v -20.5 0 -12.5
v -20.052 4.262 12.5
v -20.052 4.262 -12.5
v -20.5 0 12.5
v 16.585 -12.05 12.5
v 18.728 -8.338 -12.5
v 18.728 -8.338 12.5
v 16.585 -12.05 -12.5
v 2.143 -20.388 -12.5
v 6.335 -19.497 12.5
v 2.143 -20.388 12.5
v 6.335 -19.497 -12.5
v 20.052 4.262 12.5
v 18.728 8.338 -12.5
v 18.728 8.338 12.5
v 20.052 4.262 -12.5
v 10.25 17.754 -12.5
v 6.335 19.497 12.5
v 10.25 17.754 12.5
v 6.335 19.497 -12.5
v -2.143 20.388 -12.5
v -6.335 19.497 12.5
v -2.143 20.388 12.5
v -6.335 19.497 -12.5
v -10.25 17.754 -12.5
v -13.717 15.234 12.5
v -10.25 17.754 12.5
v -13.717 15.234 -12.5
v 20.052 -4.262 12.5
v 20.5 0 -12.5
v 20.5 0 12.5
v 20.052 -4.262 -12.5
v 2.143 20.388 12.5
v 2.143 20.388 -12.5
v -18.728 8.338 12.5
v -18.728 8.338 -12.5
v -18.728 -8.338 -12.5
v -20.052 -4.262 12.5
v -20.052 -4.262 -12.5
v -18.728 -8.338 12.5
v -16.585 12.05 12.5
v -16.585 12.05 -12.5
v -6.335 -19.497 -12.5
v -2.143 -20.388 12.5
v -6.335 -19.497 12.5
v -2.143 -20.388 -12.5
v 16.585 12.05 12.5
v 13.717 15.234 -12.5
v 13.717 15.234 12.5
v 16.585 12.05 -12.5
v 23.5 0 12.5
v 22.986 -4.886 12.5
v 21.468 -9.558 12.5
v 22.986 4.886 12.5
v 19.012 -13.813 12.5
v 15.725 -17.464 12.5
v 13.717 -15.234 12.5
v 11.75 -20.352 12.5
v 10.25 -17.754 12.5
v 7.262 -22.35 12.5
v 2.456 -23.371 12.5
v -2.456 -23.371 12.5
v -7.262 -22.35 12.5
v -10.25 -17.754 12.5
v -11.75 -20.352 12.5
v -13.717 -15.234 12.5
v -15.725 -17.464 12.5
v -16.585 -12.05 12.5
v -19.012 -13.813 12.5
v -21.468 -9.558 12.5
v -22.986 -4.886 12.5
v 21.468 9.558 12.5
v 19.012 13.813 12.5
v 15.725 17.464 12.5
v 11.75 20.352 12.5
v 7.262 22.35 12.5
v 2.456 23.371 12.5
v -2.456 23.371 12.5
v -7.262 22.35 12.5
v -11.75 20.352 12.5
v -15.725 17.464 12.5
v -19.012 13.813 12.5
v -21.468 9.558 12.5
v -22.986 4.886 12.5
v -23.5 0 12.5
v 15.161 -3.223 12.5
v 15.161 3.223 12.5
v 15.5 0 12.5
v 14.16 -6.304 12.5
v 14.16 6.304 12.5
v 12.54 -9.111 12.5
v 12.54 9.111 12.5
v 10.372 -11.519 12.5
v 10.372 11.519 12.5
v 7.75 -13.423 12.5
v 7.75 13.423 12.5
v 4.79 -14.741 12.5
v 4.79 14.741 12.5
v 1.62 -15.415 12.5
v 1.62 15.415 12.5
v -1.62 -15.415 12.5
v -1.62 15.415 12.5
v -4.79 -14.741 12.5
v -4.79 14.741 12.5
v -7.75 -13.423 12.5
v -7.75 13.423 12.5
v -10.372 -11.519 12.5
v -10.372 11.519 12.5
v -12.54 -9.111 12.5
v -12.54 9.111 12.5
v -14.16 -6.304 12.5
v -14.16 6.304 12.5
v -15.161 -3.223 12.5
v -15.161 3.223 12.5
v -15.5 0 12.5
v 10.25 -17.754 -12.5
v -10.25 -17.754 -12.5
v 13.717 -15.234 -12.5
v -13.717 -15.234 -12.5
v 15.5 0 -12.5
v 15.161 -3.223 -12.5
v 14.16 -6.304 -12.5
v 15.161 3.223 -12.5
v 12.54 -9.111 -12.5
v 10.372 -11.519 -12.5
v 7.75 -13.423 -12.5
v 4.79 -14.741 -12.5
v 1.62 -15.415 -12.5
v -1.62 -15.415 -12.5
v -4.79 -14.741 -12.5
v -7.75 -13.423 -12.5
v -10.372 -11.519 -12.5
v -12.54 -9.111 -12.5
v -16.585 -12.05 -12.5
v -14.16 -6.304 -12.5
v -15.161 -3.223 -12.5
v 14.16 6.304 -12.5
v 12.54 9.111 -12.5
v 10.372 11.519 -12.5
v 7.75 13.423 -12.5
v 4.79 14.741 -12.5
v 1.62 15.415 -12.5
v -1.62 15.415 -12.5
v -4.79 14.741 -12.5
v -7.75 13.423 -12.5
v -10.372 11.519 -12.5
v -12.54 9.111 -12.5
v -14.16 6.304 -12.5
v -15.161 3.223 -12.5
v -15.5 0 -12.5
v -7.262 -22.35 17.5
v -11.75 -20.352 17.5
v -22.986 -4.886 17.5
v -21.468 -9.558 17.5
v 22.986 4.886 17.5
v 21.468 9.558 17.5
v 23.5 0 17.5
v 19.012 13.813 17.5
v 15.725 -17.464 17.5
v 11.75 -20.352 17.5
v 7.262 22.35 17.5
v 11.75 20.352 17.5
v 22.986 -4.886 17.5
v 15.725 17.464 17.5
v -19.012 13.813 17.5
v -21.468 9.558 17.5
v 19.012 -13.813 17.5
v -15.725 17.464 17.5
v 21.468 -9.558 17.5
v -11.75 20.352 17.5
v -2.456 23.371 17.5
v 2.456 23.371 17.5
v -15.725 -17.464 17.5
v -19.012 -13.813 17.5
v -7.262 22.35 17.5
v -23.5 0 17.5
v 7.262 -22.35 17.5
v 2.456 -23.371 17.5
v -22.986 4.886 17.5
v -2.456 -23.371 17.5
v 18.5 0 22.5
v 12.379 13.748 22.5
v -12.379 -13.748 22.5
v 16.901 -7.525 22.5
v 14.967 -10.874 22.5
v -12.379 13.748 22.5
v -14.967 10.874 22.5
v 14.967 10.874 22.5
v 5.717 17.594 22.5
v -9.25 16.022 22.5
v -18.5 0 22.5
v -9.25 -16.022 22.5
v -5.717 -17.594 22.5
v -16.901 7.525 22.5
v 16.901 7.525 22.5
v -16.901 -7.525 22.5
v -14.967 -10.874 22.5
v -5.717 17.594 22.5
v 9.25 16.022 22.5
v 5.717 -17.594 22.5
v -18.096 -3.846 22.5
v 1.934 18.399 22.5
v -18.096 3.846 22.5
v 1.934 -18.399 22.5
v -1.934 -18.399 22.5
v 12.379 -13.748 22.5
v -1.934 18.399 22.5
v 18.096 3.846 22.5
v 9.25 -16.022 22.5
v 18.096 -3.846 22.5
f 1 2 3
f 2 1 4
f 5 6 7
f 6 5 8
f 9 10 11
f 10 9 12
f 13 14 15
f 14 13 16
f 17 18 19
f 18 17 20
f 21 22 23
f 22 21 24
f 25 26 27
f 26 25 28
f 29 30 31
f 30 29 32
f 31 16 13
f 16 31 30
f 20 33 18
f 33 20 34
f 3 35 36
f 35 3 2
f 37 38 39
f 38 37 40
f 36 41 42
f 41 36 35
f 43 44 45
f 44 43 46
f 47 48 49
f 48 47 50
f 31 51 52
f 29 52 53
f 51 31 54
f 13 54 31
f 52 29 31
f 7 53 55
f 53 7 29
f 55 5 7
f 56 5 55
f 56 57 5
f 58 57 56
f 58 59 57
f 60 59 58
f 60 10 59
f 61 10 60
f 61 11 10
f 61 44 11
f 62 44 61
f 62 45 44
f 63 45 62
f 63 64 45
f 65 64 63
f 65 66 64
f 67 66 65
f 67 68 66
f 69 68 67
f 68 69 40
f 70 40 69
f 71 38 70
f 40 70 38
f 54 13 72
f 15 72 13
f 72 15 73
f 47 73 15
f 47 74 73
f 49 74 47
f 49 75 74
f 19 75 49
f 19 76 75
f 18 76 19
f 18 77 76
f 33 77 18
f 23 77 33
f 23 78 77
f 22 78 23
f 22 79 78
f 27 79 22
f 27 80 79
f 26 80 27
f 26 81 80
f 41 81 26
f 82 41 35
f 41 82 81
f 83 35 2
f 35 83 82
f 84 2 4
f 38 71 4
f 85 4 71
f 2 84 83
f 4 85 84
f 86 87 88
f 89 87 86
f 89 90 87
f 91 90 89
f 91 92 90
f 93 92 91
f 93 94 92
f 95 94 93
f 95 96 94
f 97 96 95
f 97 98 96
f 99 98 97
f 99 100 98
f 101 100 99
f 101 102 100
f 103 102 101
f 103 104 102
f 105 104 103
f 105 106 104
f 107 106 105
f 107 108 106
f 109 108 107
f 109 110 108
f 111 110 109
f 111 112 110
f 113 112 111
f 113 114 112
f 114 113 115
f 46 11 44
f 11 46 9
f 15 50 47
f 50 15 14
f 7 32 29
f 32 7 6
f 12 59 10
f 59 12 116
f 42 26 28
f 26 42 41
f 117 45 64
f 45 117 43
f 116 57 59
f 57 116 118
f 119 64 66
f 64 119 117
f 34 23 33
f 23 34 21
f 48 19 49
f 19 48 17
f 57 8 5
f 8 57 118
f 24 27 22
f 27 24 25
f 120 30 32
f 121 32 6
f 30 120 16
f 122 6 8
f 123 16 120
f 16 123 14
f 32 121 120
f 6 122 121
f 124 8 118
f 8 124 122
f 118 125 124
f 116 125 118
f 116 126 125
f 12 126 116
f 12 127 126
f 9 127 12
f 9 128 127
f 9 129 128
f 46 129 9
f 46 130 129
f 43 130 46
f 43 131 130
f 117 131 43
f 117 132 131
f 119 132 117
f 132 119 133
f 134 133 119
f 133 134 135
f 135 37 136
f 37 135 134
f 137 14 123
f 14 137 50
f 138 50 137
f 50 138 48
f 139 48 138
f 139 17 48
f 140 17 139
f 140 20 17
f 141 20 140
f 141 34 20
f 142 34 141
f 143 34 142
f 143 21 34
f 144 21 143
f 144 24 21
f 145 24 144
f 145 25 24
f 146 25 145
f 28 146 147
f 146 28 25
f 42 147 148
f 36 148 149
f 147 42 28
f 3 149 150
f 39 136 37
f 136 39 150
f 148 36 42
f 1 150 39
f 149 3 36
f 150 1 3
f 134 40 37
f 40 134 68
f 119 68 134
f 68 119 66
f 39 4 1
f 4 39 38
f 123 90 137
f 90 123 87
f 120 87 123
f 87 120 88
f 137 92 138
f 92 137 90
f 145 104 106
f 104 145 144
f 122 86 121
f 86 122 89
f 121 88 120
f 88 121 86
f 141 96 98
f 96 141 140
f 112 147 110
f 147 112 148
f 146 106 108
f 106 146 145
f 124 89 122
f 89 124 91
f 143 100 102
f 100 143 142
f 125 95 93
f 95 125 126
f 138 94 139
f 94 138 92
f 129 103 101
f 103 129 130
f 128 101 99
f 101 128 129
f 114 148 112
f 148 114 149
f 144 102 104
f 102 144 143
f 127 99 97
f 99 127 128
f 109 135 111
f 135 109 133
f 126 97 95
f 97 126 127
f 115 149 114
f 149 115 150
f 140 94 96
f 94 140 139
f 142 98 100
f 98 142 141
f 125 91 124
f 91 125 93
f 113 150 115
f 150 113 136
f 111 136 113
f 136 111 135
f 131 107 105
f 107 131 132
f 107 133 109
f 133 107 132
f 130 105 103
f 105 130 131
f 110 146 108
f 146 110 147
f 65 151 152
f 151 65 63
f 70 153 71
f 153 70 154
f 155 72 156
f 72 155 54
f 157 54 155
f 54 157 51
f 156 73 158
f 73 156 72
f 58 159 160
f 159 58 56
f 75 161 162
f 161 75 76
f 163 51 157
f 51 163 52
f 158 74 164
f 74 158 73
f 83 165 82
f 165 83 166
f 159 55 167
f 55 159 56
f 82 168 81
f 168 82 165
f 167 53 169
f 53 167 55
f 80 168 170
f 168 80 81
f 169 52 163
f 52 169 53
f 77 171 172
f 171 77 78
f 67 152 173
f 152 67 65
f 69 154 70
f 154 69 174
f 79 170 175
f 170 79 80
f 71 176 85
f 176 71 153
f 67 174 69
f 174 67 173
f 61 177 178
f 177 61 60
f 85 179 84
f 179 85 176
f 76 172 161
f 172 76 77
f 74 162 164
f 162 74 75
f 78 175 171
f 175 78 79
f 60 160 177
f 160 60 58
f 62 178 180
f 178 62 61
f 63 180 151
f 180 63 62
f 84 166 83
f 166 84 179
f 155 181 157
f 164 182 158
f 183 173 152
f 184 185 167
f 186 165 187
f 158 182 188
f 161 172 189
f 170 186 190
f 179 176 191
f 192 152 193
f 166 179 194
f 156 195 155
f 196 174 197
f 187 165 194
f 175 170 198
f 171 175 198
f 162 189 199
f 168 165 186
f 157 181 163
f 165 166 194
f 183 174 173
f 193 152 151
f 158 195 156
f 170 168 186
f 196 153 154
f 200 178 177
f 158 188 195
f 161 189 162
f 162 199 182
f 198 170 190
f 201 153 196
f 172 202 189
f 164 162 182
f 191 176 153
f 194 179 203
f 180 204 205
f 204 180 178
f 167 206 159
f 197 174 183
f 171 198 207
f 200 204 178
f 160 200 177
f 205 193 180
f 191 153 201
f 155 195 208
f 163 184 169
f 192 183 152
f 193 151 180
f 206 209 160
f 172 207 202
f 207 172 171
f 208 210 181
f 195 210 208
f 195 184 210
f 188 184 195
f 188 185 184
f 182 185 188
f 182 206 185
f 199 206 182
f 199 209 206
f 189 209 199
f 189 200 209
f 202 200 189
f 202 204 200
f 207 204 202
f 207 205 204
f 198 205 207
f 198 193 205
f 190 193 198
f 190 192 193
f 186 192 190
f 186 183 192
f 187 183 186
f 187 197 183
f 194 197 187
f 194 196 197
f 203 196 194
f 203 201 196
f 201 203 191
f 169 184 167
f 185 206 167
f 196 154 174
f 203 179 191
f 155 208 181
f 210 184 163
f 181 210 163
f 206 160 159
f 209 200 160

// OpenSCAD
tubeDiameter=41; //40.5 is too few
tubeThighness=5;
stopperExtraThigness=3;
stopperTopHeight=5;
stopperBottomHeight=5;
depth=25;

// Main tube
difference(){
    cylinder(depth, tubeDiameter/2,tubeDiameter/2,true);
    cylinder(2*depth, tubeDiameter/2-tubeThighness,tubeDiameter/2-tubeThighness,true);
}
// Stopper bottom
translate([0,0,(depth+stopperBottomHeight)/2]){
    cylinder(stopperBottomHeight, tubeDiameter/2+stopperExtraThigness,tubeDiameter/2+stopperExtraThigness,true);
}

// Stopper top
translate([0,0,(depth+stopperTopHeight)/2+stopperBottomHeight]){
    cylinder(stopperTopHeight, tubeDiameter/2+stopperExtraThigness,tubeDiameter/2+stopperExtraThigness-stopperTopHeight,true);
}
